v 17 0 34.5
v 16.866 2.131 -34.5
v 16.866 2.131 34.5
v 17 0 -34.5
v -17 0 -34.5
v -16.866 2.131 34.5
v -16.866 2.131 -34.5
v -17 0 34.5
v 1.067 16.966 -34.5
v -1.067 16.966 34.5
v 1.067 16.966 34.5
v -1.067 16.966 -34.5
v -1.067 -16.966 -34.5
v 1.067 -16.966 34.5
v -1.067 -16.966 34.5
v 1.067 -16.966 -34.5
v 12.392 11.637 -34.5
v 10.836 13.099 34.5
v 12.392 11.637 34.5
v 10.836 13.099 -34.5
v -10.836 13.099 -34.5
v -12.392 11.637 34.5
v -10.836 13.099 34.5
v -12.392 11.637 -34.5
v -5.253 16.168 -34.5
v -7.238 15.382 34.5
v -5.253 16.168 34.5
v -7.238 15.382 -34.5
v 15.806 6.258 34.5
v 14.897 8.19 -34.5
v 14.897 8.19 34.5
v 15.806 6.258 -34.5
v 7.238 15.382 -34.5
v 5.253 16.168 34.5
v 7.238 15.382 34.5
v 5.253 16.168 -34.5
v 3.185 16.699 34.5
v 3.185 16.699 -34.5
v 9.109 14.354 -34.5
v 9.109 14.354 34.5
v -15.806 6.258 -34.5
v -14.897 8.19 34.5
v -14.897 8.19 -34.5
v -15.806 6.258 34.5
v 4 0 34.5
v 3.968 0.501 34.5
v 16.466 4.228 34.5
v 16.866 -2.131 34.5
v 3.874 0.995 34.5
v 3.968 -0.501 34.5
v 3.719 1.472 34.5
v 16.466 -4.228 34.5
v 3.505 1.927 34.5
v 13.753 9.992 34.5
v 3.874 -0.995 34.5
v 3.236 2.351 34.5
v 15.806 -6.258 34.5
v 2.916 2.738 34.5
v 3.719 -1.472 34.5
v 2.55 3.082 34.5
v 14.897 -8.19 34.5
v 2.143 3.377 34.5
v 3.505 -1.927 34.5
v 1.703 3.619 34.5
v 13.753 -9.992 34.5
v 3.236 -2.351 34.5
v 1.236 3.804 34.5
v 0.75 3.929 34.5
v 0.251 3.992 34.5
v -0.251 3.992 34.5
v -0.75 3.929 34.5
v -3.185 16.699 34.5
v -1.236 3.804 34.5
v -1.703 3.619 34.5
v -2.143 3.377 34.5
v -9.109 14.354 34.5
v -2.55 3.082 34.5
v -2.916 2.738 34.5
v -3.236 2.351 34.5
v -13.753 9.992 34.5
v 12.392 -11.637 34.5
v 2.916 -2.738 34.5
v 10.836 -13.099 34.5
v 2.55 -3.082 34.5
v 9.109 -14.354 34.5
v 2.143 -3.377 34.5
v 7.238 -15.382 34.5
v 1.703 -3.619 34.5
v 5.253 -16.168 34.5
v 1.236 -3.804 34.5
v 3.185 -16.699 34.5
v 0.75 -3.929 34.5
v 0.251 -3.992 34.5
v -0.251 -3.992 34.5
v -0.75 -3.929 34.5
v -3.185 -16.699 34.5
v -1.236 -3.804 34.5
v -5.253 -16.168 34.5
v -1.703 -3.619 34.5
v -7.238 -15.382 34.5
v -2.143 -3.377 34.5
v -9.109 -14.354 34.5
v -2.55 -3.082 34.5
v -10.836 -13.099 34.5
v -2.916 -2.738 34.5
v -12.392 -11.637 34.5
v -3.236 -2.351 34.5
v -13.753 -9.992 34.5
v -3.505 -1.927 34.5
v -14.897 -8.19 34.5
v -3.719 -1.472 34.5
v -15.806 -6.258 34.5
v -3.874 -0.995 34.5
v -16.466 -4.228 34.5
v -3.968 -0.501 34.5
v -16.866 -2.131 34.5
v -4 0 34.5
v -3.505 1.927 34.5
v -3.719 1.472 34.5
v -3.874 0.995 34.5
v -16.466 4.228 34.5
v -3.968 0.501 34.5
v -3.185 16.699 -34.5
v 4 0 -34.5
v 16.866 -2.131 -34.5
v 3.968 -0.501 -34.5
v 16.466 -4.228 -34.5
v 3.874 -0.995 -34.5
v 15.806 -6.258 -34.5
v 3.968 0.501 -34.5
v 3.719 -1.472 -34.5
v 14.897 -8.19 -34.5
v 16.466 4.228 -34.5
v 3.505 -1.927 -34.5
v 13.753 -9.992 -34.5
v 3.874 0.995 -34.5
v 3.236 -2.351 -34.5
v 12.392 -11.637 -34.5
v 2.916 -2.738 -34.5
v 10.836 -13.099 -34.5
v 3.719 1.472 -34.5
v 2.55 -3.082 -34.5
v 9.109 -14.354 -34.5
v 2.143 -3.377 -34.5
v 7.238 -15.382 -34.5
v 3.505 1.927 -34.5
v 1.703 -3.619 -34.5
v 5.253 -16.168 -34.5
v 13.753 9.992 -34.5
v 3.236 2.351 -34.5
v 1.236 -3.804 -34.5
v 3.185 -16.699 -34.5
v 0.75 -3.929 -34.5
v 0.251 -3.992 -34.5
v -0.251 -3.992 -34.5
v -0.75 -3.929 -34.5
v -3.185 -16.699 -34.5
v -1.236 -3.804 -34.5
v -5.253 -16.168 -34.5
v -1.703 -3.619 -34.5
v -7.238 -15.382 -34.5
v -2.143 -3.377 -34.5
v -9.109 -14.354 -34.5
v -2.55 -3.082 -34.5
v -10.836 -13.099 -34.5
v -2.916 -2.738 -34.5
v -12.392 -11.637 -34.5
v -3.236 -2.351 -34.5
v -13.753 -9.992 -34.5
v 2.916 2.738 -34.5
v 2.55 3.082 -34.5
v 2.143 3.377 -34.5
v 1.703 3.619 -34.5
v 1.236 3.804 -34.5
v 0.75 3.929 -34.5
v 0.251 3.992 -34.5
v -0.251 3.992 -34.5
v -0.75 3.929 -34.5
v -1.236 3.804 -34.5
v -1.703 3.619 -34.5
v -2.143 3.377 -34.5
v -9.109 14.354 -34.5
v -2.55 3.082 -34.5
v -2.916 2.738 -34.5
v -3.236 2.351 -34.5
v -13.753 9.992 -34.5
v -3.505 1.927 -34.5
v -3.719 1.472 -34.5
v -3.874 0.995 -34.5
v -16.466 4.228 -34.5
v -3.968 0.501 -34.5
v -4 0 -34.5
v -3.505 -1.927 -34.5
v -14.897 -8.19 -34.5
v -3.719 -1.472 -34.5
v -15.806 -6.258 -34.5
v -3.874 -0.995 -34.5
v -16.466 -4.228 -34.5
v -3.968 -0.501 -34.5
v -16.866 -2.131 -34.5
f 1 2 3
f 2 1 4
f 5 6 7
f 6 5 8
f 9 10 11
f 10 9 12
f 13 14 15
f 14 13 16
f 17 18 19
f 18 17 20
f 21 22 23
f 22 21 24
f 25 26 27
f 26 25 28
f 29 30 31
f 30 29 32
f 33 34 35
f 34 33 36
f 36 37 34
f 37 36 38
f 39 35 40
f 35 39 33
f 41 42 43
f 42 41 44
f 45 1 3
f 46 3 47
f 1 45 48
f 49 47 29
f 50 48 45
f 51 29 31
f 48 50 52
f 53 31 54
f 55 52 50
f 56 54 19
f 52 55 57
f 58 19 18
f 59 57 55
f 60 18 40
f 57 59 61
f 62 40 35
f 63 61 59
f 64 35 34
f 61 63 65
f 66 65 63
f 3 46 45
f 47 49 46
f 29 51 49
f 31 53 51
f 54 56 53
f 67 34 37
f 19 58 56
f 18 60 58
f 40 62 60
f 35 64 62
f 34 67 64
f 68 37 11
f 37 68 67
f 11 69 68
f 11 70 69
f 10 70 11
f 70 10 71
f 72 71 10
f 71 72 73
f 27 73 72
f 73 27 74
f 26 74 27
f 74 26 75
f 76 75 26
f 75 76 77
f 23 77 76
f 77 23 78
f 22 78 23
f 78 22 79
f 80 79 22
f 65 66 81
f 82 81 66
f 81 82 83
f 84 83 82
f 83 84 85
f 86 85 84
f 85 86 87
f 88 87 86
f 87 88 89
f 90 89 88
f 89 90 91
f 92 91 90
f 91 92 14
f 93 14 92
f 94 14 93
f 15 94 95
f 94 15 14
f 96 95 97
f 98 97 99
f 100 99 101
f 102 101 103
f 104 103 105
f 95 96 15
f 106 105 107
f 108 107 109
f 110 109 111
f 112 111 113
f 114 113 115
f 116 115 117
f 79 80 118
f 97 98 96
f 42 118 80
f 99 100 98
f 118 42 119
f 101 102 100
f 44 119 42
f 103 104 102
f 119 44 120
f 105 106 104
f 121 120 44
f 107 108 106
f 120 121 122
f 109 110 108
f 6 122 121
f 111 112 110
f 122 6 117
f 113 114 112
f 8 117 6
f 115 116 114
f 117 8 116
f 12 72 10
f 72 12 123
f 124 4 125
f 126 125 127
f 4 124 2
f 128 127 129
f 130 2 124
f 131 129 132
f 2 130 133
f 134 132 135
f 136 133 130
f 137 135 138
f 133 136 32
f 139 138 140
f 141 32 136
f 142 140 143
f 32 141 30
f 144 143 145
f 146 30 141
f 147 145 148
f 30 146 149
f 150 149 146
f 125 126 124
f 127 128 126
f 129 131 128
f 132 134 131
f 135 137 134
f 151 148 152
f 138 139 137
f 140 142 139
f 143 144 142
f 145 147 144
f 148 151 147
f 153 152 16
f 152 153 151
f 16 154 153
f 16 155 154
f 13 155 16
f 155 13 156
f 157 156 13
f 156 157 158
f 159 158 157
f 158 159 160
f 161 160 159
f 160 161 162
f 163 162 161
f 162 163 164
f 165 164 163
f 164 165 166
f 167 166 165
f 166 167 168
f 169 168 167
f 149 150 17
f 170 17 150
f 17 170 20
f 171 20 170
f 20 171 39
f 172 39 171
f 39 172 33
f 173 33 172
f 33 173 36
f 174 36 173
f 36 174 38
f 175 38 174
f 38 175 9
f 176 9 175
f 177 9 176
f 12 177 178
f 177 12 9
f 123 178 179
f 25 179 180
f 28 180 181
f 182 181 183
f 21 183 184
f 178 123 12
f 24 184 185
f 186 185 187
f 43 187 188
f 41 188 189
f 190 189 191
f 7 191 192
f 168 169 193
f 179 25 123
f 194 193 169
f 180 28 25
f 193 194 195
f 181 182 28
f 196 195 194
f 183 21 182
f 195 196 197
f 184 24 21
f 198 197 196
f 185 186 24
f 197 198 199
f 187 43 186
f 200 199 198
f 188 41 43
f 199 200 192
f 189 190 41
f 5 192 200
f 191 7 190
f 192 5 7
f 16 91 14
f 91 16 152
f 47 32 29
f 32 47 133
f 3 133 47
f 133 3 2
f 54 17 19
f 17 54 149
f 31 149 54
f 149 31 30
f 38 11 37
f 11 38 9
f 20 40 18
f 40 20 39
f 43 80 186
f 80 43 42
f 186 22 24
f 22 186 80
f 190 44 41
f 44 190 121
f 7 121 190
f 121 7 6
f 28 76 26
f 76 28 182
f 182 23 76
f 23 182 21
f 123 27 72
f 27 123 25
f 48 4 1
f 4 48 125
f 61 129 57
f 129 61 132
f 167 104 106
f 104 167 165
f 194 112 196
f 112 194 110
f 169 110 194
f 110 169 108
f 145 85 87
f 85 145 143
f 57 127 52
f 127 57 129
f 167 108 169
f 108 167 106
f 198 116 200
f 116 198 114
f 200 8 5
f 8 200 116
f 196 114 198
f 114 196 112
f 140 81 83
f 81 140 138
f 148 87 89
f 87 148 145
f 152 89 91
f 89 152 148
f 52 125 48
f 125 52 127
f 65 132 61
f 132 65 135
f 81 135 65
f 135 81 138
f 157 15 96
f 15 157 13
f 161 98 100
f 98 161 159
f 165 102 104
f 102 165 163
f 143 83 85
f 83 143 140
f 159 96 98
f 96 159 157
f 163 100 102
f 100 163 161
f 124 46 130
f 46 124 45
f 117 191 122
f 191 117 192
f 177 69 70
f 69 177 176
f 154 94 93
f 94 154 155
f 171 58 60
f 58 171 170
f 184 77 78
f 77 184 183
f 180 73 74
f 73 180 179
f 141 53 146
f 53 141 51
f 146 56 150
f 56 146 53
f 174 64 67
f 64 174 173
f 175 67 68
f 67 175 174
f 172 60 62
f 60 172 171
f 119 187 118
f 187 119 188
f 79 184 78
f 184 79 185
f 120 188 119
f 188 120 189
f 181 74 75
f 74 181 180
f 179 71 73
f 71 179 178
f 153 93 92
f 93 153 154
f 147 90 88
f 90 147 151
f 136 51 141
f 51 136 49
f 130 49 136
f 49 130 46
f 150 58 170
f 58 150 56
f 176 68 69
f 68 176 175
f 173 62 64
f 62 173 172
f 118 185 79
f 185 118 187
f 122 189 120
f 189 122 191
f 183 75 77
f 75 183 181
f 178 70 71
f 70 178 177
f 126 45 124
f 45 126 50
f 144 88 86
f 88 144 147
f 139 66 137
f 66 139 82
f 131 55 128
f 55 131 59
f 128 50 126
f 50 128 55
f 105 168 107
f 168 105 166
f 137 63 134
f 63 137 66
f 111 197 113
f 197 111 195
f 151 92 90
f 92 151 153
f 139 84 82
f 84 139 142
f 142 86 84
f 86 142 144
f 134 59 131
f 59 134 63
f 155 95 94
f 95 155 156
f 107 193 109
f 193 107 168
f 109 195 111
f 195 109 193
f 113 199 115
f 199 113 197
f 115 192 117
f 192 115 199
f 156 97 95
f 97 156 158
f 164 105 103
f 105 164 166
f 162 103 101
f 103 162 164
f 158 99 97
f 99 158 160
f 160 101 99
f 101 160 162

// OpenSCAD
$fn = 50;


difference() {
	union() {
		translate(v = [0, 0, -34.5000000000]) {
			cylinder(h = 69, r = 17.0000000000);
		}
	}
	union() {
		translate(v = [0, 0, -100.0000000000]) {
			cylinder(h = 200, r = 4);
		}
	}
}
